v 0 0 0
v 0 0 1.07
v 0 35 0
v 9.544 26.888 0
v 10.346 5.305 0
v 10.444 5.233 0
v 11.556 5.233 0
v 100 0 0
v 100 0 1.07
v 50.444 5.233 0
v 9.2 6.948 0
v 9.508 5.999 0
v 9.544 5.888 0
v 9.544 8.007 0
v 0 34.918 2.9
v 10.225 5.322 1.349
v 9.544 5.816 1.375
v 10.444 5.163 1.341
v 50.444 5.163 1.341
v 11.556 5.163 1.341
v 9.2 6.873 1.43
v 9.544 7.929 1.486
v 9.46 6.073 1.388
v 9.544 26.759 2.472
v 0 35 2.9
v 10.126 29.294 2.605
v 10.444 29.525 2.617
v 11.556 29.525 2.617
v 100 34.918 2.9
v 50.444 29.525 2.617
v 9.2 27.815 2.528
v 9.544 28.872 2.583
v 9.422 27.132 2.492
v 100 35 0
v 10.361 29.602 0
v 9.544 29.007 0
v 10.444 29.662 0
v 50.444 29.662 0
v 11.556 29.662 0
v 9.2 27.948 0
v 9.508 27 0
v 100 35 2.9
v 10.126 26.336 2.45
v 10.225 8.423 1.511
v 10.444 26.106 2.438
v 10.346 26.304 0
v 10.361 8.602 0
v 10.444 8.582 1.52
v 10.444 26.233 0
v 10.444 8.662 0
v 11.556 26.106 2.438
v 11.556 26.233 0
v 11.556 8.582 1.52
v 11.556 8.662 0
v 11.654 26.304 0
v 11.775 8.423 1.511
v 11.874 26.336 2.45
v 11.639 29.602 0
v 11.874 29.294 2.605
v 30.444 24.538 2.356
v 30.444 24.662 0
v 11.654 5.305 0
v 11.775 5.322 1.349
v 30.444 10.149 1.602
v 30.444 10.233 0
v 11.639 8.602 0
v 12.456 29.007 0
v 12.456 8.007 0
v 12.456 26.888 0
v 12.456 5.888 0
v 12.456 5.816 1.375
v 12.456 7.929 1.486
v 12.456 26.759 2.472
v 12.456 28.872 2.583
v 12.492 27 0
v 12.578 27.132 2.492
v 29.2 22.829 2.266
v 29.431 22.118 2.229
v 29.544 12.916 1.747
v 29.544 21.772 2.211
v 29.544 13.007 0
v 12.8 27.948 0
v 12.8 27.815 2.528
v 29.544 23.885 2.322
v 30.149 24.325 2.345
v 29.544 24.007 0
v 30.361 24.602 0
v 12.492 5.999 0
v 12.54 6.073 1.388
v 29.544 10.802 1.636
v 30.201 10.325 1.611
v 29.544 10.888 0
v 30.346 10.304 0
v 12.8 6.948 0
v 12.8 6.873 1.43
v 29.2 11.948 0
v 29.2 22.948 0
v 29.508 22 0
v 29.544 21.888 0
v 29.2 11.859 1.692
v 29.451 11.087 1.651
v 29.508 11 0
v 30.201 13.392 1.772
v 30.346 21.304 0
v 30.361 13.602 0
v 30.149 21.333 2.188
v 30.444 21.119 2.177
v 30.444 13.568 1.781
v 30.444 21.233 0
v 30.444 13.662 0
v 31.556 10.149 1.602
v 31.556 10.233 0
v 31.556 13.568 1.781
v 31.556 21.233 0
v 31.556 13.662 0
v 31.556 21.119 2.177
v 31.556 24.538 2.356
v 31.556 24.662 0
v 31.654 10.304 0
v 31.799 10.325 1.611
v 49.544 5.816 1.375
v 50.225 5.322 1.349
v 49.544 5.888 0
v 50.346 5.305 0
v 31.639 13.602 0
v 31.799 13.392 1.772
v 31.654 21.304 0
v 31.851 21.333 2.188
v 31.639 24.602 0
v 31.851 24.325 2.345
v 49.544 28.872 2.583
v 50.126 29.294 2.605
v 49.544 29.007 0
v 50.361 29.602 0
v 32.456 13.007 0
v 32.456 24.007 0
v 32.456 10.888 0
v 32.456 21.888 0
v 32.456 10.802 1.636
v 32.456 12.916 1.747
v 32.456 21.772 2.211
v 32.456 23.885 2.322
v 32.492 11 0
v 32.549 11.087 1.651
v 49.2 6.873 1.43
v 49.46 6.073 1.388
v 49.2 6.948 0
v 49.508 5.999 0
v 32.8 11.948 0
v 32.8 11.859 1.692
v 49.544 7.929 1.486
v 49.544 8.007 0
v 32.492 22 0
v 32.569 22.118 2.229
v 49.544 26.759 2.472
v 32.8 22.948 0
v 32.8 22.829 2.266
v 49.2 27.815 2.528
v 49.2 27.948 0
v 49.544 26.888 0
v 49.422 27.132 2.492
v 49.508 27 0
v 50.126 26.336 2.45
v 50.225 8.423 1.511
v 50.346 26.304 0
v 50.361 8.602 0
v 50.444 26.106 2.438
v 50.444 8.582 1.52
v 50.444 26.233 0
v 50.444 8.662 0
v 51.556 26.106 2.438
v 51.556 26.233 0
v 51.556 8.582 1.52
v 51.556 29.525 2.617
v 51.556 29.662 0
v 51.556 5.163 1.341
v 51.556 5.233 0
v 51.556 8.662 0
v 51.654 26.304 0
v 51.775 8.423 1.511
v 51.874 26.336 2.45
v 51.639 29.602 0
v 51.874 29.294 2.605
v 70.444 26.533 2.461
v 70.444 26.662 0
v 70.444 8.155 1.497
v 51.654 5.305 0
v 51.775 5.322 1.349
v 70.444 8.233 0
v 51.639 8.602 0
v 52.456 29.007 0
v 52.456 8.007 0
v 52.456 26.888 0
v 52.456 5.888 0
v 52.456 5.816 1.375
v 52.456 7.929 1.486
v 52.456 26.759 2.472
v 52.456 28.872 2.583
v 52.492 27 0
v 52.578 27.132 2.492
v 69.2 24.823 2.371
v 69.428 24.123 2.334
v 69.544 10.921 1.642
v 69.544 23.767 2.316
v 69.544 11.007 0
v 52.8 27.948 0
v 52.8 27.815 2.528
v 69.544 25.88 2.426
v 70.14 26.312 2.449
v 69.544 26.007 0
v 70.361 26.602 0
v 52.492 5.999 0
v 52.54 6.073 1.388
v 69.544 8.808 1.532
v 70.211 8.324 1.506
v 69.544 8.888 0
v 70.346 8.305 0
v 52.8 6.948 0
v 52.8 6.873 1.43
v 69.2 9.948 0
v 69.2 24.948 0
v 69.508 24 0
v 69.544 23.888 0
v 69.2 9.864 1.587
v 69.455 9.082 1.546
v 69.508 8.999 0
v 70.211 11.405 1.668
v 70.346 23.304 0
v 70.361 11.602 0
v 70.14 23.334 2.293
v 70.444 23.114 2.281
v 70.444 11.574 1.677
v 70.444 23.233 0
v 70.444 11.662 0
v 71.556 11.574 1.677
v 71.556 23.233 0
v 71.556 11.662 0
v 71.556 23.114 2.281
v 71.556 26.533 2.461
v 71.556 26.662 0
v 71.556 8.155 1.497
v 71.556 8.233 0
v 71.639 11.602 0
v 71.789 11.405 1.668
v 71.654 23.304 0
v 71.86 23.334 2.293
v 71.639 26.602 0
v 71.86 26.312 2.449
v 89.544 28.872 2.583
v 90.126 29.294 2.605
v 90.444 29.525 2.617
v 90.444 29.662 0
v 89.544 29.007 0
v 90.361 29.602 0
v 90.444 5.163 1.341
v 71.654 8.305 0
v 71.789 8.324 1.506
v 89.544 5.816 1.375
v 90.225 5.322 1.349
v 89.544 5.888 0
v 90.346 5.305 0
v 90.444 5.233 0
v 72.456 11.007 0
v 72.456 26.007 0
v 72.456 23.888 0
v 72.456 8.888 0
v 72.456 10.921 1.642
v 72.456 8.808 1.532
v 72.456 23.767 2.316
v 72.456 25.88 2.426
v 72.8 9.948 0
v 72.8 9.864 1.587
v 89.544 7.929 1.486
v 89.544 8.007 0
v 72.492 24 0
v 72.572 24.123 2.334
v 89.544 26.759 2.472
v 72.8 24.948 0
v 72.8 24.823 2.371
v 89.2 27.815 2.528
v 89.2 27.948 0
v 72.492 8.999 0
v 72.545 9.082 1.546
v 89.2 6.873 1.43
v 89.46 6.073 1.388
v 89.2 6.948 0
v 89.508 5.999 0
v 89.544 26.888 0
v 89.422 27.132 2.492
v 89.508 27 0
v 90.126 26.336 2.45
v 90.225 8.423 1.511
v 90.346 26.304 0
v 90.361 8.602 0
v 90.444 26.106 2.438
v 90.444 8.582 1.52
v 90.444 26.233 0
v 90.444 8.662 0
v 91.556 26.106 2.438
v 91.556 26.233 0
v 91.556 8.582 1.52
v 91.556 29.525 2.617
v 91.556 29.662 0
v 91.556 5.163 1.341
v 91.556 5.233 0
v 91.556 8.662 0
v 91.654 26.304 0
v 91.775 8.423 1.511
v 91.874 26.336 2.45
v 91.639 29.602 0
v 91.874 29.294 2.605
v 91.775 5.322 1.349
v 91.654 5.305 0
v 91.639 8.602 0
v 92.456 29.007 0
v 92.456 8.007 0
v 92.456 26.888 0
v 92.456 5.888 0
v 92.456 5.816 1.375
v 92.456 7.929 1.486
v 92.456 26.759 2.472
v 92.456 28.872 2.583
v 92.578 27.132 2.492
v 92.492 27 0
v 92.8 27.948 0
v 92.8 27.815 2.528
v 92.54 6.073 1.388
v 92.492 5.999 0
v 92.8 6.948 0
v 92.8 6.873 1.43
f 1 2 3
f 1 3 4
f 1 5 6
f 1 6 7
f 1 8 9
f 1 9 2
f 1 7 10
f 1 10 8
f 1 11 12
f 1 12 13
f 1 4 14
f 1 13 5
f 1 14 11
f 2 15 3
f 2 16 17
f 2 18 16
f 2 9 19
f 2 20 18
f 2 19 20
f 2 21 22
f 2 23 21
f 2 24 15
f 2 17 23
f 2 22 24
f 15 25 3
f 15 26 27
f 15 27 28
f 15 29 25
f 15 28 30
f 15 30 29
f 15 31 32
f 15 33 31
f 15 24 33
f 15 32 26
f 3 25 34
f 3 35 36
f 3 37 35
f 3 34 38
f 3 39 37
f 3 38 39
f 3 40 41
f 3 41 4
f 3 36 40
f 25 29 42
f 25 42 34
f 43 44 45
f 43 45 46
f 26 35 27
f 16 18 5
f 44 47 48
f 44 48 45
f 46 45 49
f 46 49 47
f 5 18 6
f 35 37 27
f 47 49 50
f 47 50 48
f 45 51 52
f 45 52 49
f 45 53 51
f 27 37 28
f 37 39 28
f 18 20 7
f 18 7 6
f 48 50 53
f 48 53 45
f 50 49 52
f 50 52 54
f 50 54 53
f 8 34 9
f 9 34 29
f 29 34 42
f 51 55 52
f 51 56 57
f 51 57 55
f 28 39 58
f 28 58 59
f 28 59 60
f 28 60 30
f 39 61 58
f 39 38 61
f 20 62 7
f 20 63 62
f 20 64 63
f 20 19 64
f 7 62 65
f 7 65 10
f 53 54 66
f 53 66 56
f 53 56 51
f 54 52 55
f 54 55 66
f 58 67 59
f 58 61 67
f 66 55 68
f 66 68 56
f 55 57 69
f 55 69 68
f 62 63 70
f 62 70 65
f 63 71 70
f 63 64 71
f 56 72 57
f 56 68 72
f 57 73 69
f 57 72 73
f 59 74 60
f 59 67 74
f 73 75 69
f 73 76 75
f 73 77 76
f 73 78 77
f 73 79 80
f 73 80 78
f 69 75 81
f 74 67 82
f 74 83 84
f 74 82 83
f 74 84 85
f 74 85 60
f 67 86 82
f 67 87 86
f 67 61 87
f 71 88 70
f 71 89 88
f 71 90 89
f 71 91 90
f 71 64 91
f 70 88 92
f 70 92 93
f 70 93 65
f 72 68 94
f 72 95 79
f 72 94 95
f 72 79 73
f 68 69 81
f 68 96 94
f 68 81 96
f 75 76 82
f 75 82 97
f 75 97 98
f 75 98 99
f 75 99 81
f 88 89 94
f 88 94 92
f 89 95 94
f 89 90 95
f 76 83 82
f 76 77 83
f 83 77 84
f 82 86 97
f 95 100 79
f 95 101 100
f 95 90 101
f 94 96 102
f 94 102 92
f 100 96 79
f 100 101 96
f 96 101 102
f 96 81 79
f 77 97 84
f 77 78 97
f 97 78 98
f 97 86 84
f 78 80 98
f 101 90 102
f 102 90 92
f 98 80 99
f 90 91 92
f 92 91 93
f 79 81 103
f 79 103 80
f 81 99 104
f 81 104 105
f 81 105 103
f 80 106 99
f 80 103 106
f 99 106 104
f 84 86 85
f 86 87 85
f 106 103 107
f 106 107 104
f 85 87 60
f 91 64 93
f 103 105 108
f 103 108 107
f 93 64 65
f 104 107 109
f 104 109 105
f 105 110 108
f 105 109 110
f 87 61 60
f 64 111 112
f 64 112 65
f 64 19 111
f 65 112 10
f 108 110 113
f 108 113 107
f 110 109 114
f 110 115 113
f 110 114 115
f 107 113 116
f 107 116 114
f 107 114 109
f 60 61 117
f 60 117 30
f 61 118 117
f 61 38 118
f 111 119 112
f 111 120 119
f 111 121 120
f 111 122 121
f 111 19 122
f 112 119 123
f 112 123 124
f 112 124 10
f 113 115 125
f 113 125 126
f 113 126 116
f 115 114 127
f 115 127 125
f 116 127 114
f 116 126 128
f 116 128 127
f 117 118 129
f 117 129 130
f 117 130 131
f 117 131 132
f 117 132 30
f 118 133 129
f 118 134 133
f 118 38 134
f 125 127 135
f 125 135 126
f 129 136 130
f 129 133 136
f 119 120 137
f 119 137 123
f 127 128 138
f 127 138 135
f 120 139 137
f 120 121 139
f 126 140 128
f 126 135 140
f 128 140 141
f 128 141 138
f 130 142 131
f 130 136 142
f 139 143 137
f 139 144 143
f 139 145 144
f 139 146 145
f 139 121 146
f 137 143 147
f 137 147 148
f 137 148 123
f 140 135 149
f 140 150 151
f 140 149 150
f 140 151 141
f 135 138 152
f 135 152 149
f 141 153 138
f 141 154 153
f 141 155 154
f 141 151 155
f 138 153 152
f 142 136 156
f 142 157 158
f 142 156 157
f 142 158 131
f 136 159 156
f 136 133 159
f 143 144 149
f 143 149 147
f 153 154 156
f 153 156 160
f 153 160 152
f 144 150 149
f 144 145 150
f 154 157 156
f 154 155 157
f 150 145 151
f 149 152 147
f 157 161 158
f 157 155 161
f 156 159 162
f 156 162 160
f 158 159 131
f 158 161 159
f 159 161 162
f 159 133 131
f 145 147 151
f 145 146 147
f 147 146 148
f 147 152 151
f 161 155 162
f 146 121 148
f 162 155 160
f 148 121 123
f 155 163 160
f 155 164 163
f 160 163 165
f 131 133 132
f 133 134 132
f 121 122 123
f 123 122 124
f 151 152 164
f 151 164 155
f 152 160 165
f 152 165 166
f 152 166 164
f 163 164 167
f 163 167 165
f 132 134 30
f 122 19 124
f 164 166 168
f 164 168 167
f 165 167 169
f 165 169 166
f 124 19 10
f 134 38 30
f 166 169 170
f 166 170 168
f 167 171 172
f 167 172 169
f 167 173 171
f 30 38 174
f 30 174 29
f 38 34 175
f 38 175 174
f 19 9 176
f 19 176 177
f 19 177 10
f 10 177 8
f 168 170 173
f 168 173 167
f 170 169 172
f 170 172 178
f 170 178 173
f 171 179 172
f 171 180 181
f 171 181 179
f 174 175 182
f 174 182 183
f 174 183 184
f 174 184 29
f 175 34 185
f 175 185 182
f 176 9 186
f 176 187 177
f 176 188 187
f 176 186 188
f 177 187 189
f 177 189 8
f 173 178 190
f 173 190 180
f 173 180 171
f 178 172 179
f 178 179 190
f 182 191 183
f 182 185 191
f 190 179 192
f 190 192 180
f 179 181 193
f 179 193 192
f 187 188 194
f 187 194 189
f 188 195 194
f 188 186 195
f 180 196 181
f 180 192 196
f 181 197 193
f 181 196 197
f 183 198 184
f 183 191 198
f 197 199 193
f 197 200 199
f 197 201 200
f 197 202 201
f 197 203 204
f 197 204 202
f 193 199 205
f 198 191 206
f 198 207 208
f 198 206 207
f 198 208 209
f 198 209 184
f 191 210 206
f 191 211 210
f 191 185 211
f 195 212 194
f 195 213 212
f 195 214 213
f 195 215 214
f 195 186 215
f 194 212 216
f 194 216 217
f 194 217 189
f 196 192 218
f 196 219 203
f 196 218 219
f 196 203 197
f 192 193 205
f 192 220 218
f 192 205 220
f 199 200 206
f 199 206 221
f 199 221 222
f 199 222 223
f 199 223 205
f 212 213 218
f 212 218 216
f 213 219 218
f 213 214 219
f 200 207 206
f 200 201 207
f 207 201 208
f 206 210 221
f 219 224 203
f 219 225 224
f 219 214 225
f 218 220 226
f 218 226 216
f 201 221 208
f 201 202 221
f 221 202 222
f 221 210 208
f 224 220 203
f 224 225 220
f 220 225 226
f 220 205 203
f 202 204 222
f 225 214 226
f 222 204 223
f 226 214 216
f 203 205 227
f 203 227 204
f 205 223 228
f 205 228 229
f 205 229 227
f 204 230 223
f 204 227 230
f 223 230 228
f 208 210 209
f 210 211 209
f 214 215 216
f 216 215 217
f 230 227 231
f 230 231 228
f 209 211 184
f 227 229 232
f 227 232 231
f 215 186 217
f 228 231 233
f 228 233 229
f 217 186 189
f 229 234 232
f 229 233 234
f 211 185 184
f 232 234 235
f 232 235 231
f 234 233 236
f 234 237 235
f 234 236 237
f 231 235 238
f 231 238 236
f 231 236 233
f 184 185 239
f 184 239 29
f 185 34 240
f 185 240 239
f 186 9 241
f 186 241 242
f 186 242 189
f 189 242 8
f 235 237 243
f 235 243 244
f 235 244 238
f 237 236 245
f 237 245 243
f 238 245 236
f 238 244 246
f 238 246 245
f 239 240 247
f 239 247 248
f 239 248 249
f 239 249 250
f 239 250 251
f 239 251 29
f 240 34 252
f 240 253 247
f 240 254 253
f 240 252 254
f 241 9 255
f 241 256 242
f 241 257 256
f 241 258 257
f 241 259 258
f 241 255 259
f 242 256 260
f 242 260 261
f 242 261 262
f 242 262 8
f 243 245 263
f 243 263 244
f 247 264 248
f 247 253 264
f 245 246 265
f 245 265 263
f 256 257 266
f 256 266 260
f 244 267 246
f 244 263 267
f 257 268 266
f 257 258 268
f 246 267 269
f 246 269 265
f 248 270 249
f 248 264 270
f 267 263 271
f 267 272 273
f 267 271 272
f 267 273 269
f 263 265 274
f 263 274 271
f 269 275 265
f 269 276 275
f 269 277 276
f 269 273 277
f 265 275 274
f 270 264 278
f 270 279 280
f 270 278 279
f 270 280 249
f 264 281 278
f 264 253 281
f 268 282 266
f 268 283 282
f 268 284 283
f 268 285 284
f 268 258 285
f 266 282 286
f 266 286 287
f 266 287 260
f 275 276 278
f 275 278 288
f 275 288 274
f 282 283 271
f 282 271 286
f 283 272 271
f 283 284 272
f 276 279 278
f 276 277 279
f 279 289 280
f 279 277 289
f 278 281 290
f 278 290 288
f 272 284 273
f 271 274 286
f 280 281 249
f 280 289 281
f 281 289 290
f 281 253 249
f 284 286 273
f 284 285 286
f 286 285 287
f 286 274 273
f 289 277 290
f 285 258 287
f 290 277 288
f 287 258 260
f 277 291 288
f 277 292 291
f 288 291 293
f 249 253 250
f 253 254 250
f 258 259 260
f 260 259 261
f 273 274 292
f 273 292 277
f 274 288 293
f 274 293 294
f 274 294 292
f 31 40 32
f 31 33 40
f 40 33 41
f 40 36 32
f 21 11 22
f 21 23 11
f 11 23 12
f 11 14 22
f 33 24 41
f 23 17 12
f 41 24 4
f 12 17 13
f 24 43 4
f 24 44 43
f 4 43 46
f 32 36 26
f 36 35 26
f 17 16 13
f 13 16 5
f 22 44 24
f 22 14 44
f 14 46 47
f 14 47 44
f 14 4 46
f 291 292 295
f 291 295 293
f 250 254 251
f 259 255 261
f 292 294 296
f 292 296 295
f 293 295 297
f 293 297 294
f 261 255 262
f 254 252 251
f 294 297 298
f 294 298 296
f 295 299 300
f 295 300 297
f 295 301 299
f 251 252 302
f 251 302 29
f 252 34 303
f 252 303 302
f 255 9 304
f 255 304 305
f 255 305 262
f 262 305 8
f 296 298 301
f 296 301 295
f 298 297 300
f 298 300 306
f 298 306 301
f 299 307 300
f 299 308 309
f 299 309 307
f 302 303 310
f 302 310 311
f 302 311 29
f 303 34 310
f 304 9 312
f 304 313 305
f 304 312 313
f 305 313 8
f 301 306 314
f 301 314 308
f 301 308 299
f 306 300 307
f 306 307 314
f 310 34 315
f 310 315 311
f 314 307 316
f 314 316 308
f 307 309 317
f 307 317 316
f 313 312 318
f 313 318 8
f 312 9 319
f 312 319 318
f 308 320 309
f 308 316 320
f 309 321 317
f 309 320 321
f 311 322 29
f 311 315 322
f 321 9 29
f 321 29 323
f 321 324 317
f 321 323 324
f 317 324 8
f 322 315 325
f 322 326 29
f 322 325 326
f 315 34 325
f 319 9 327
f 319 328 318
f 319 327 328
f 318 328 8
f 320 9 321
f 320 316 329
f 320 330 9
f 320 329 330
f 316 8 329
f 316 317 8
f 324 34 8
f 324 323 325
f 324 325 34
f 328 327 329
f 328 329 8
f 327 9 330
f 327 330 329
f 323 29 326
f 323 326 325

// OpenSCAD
// file: ../Parameters.scad
//Main tube diameter - hole [mm]
main_tube_outer_diameter = 25.4;
main_tube_inner_diameter = 23.5;

//Tube for undercarriage - hole [mm]
tube_for_undercarriage_outer_diameter = 10.6;
tube_for_undercarriage_inner_diameter = 6;
global_clearance = 0.5;


//umístění podvozkových trubek

second_undercarriage_hole = main_tube_outer_diameter*2 + main_tube_outer_diameter/5 + main_tube_outer_diameter/2 + 170 + 160;

// Parameters of cube couplings
coupling_wall_thickness = main_tube_outer_diameter/5;  //width of coupling walls 
thickness_between_tubes = main_tube_outer_diameter/10;    // minimum distance between tubes in couplings

coupling_wall_thickness_undercarriage = tube_for_undercarriage_outer_diameter/3;
thickness_between_tubes_undercarriage = tube_for_undercarriage_outer_diameter/10;

//Screw diameter and nut for M4 [mm]
M4_screw_diameter=4.5;
Nut_height_M4 = 3.2;
Nut_diameter_M4 = 7.86;


//Screw diameter and nut for M3 [mm]
M3_screw_diameter = 3.2;
Nut_height_M3 = 1.7;	
Nut_diameter_M3 = 6.6; 


//The tube for help
Help_main_tube_outer = 25;
Help_main_tube_inner = 23; 
Help_tube_for_undercarriage_outer = 10;
Help_tube_for_undercarriage_inner = 5;


//main hull parameters

hull_drop_length = 580;
hull_wall_thickness = 0.8;
hull_y_size = 120;
hull_z_size = 150;
hull_x_size = 580;
hull_corner_radius = 4;
hull_airfoil_thickness= 35;  // thickness of drop generating airfoil in percent of lenght.
hull_scale_x = 1;
hull_scale_y = 1.5;
hull_scale_z = 1.5;

main_pilon_position = 170+68;
cover_pilon_position = 180;
height_of_vertical_tube = 275; //278mm je změřená délka trubky. 

ribbon_width = 5; // šířka vyztužovacích lemů. 

// šířka otvoru v přední části kapoty pro držák motoru.
width_of_engine_holder = 63;

//Top Cover Division - dělení horního krytu pro tisk
top_cover_division = [0, 50, 150, 280, 410, hull_x_size]; // upraveny seznam tak, aby deleni začinalo od nuly, což umožňí úplně automatické rozdělení.

//Bottom Cover Division - dělení dolního krytu pro tisk
bottom_cover_division = [0,100,250,365, 470, hull_x_size];
// zkrácená část pro payload pro testovací tisk
//bottom_cover_division = [0,200,250,365, 470, hull_x_size];

//Base Divison - dělení podložky
base_division = [0,140,280,410, hull_x_size];

//Cover pilon division - na výšku (v ose Z)
cover_pilon_division = [0,170,height_of_vertical_tube + main_tube_outer_diameter + coupling_wall_thickness];

//pozice šroubů
	//horní kryt
top_screw_position = [0, (top_cover_division[0] + top_cover_division[1])/4, (top_cover_division[2] - top_cover_division[1])/2 + top_cover_division[1], (top_cover_division[3] - top_cover_division[2])/2 + top_cover_division[2],(top_cover_division[4] - top_cover_division[3])/2 + top_cover_division[3],(top_cover_division[5] - top_cover_division[4])/2 + top_cover_division[4] - 20];
	//spodní kryt
bottom_screw_position = [0,(bottom_cover_division[0] + bottom_cover_division[1])/15 + 5, bottom_cover_division[1]/1.1, + bottom_cover_division[3], bottom_cover_division[3] + bottom_cover_division[1]/2, bottom_cover_division[4] - 6*global_clearance, bottom_cover_division[4] + bottom_cover_division[1]/2.5];




//šířka zámků
lock_width = 10;

//délka zámků
lock_length = 3;


//accumulator
//základní rozměry akumulátoru
width_of_accumulator = 129.4;//45+1;
depth_of_accumulator = 40.61;
height_of_accumulator = 43.65;
//Zapuštění akumulátoru
sink_of_accumulator = 5; //main_tube_outer_diameter/5 - Nut_height_M3*1.5;

//tloušťka hrany spojky
accumulator_holder_width = 18; 
accumulator_holder_thickness = 10; 

//posunutí akumálátoru na podložce
move_of_accumulator = 165;   // pozice akumulátoru (ovlivňuje těžiště)


////////////////
// Senzory
///////////////////

//opticalFlow
    width_optical_flow_senzor = 45.5;
    depth_optical_flow_senzor = 6;
    height_optical_flow_senzor = 35;
    sink_of_optical_flow_senzor = depth_optical_flow_senzor - 5; 
    M3_optical_flow_senzor_Z = 30.4;
    M3_optical_flow_senzor_X = 24;
    M3_optical_flow_senzor_Z_alone = 9.1;
    M3_optical_flow_senzor_X_alone = 16.7;
// file: lib/naca4.scad
// Naca4.scad - library for parametric airfoils of 4 digit NACA series
// Code: Rudolf Huttary, Berlin 
// June 2015
// commercial use prohibited


// general use: for more examples refer to sampler.scad
// naca = naca digits or 3el vector  (default = 12 or [0, 0, .12])
// L    = chord length [mm]      (default= 100)
// N    = # sample points        (default= 81)
// h    = height [mm]            (default= 1)
// open = close at the thin end? (default = true)
// two equivalent example calls
 airfoil(naca = 2408, L = 60, N=1001, h = 30, open = false); 
// airfoil(naca = [.2, .4, .32], L = 60, N=1001, h = 30, open = false); 

module help()
{
  echo(str("\n\nList of signatures in lib:\n=================\n", 
  "module airfoil(naca=2412, L = 100, N = 81, h = 1, open = false) - renders airfoil object\n", 
  "module airfoil(naca=[.2, .4, .12], L = 100, N = 81, h = 1, open = false) - renders airfoil object using percentage for camber,  camber distance and thicknes\n", 
  "function airfoil_data(naca=12, L = 100, N = 81, open = false)\n",
  "=================\n")); 
}

help(); 
// this is the object
module airfoil(naca=12, L = 100, N = 81, h = 1, open = false)
{
  linear_extrude(height = h)
  polygon(points = airfoil_data(naca, L, N, open)); 
}

module hollow_airfoil(lnaca=12, L = 100, N = 81, h = 1, open = false, wall_thickness = 1)
{
    if (open){
        linear_extrude(height = h)

        if (wall_thickness>0){
            difference(){
                polygon(points = airfoil_data(naca, L, N, false));
                offset(delta = - wall_thickness, chamfer = false) polygon(points = airfoil_data(naca, L, N, open = false));
            }
        }
        else{
            difference(){
                offset(delta = - wall_thickness, chamfer = false) polygon(points = airfoil_data(naca, L, N, open = false));
                polygon(points = airfoil_data(naca, L, N, false));
            }
        }
    }
    else{

        linear_extrude(height = abs(wall_thickness))
            polygon(points = airfoil_data(naca, L, N, false)); 

        linear_extrude(height = h)
            difference(){
                polygon(points = airfoil_data(naca, L, N, open));
                offset(delta = - wall_thickness) polygon(points = airfoil_data(naca, L, N, open = false));
            }

        translate([0,0, h - wall_thickness])
            linear_extrude(height = abs(wall_thickness))
                polygon(points = airfoil_data(naca, L, N, false)); 

    }
}


// this is the main function providing the airfoil data
function airfoil_data(naca=12, L = 100, N = 81, open = false) = 
  let(Na = len(naca)!=3?NACA(naca):naca)
  let(A = [.2969, -0.126, -.3516, .2843, open?-0.1015:-0.1036])
  [for (b=[-180:360/(N):179.99]) 
    let (x = (1-cos(b))/2)  
    let(yt = sign(b)*Na[2]/.2*(A*[sqrt(x), x, x*x, x*x*x, x*x*x*x])) 
    Na[0]==0?L*[x, yt]:L*camber(x, yt, Na[0], Na[1], sign(b))];  


function trailing_edge_angle(naca=12, open = false) = 
  let(Na = len(naca)!=3?NACA(naca):naca)
  let(A = [.2969, -0.126, -.3516, .2843, open?-0.1015:-0.1036])
  let (x =0.999)  // set x near to airfoil trailing edge
  let(yt = Na[2]/.2*(A*[sqrt(x), x, x*x, x*x*x, x*x*x*x])) // calculate distance from x-axis at previously set position
  atan2(yt,1-x);  // calculate angle of triangle between end of airfoil. The triange height corresponds to previously calculated distance from x-axis

function surface_angle(x = 0.5, naca=12, open = false) = 
  let(Na = len(naca)!=3?NACA(naca):naca)
  let(A = [0.2969, -0.126, -0.3516, 0.2843, open?-0.1015:-0.1036])
  let(dy = Na[2]/0.2*(A*[(1/2)*(1/sqrt(x)), 1, 2*x, 3*x*x, 4*x*x*x])) // calculate derivative of airfoil function at the x point
  atan(dy);  // calculate  the angle from function derivative

function surface_distance(x = 0.5, naca=12, open = false) = 
  let(Na = len(naca)!=3?NACA(naca):naca)
  let(A = [0.2969, -0.126, -0.3516, 0.2843, open?-0.1015:-0.1036])
  Na[2]/.2*(A*[sqrt(x), x, x*x, x*x*x, x*x*x*x]); // calculate distance from x-axis at previously set position

// helper functions
function NACA(naca) = 
  let (M = floor(naca/1000))
  let (P = floor((naca-M*1000)/100)) 
  [M/100, P/10, floor(naca-M*1000-P*100)/100];  

function camber(x, y, M, P, upper) = 
  let(yc = (x<P)?M/P/P*(2*P*x-x*x): M/(1-P)/(1-P)*(1 - 2*P + 2*P*x -x*x))
  let(dy = (x<P)?2*M/P/P*(P-x):2*M/(1-P)/(1-P)*(P-x))
  let(th = atan(dy))
  [upper ? x - y*sin(th):x + y*sin(th), upper ? yc + y*cos(th):yc - y*cos(th)];
// main file
use <./lib/naca4.scad>
include <../Parameters.scad>

AOA = 3.0; // set Angle of Attact of the airfoil

module 666_1247(){
	union(){
		difference(){
			cube([100,35,2.9]);

			translate([100-9,7,-1])
				rotate([AOA,0,0])
					cylinder (h = 10, r = 3.6/2, $fn = 10);
			translate([100-9,35-7,-1])
				rotate([AOA,0,0])	
					cylinder (h = 10, r = 3.6/2, $fn = 10);

			translate([100-9-20,25,-1])	
				rotate([AOA,0,0])	
					cylinder (h = 10, r = 3.6/2, $fn = 10);
			translate([100-9-20,35-25,-1])	
				rotate([AOA,0,0])	
					cylinder (h = 10, r = 3.6/2, $fn = 10);

			translate([100-9-20-20,7,-1])	
				rotate([AOA,0,0])	
					cylinder (h = 10, r = 3.6/2, $fn = 10);
			translate([100-9-20-20,35-7,-1])	
				rotate([AOA,0,0])	
					cylinder (h = 10, r = 3.6/2, $fn = 10);

			translate([100-9-20-20-20,23,-1])	
				rotate([AOA,0,0])	
					cylinder (h = 10, r = 3.6/2, $fn = 10);
			translate([100-9-20-20-20,35-23,-1])	
				rotate([AOA,0,0])	
					cylinder (h = 10, r = 3.6/2, $fn = 10);

			translate([100-9-20-20-20-20,7,-1])	
				rotate([AOA,0,0])	
					cylinder (h = 10, r = 3.6/2, $fn = 10);
			translate([100-9-20-20-20-20,35-7,-1])	
				rotate([AOA,0,0])	
					cylinder (h = 10, r = 3.6/2, $fn = 10);

			translate([-1,0,1.07])		// set AOA
				rotate([AOA,0,0])		
					cube([200, 100, 10]);
		}
	}
}
666_1247();
